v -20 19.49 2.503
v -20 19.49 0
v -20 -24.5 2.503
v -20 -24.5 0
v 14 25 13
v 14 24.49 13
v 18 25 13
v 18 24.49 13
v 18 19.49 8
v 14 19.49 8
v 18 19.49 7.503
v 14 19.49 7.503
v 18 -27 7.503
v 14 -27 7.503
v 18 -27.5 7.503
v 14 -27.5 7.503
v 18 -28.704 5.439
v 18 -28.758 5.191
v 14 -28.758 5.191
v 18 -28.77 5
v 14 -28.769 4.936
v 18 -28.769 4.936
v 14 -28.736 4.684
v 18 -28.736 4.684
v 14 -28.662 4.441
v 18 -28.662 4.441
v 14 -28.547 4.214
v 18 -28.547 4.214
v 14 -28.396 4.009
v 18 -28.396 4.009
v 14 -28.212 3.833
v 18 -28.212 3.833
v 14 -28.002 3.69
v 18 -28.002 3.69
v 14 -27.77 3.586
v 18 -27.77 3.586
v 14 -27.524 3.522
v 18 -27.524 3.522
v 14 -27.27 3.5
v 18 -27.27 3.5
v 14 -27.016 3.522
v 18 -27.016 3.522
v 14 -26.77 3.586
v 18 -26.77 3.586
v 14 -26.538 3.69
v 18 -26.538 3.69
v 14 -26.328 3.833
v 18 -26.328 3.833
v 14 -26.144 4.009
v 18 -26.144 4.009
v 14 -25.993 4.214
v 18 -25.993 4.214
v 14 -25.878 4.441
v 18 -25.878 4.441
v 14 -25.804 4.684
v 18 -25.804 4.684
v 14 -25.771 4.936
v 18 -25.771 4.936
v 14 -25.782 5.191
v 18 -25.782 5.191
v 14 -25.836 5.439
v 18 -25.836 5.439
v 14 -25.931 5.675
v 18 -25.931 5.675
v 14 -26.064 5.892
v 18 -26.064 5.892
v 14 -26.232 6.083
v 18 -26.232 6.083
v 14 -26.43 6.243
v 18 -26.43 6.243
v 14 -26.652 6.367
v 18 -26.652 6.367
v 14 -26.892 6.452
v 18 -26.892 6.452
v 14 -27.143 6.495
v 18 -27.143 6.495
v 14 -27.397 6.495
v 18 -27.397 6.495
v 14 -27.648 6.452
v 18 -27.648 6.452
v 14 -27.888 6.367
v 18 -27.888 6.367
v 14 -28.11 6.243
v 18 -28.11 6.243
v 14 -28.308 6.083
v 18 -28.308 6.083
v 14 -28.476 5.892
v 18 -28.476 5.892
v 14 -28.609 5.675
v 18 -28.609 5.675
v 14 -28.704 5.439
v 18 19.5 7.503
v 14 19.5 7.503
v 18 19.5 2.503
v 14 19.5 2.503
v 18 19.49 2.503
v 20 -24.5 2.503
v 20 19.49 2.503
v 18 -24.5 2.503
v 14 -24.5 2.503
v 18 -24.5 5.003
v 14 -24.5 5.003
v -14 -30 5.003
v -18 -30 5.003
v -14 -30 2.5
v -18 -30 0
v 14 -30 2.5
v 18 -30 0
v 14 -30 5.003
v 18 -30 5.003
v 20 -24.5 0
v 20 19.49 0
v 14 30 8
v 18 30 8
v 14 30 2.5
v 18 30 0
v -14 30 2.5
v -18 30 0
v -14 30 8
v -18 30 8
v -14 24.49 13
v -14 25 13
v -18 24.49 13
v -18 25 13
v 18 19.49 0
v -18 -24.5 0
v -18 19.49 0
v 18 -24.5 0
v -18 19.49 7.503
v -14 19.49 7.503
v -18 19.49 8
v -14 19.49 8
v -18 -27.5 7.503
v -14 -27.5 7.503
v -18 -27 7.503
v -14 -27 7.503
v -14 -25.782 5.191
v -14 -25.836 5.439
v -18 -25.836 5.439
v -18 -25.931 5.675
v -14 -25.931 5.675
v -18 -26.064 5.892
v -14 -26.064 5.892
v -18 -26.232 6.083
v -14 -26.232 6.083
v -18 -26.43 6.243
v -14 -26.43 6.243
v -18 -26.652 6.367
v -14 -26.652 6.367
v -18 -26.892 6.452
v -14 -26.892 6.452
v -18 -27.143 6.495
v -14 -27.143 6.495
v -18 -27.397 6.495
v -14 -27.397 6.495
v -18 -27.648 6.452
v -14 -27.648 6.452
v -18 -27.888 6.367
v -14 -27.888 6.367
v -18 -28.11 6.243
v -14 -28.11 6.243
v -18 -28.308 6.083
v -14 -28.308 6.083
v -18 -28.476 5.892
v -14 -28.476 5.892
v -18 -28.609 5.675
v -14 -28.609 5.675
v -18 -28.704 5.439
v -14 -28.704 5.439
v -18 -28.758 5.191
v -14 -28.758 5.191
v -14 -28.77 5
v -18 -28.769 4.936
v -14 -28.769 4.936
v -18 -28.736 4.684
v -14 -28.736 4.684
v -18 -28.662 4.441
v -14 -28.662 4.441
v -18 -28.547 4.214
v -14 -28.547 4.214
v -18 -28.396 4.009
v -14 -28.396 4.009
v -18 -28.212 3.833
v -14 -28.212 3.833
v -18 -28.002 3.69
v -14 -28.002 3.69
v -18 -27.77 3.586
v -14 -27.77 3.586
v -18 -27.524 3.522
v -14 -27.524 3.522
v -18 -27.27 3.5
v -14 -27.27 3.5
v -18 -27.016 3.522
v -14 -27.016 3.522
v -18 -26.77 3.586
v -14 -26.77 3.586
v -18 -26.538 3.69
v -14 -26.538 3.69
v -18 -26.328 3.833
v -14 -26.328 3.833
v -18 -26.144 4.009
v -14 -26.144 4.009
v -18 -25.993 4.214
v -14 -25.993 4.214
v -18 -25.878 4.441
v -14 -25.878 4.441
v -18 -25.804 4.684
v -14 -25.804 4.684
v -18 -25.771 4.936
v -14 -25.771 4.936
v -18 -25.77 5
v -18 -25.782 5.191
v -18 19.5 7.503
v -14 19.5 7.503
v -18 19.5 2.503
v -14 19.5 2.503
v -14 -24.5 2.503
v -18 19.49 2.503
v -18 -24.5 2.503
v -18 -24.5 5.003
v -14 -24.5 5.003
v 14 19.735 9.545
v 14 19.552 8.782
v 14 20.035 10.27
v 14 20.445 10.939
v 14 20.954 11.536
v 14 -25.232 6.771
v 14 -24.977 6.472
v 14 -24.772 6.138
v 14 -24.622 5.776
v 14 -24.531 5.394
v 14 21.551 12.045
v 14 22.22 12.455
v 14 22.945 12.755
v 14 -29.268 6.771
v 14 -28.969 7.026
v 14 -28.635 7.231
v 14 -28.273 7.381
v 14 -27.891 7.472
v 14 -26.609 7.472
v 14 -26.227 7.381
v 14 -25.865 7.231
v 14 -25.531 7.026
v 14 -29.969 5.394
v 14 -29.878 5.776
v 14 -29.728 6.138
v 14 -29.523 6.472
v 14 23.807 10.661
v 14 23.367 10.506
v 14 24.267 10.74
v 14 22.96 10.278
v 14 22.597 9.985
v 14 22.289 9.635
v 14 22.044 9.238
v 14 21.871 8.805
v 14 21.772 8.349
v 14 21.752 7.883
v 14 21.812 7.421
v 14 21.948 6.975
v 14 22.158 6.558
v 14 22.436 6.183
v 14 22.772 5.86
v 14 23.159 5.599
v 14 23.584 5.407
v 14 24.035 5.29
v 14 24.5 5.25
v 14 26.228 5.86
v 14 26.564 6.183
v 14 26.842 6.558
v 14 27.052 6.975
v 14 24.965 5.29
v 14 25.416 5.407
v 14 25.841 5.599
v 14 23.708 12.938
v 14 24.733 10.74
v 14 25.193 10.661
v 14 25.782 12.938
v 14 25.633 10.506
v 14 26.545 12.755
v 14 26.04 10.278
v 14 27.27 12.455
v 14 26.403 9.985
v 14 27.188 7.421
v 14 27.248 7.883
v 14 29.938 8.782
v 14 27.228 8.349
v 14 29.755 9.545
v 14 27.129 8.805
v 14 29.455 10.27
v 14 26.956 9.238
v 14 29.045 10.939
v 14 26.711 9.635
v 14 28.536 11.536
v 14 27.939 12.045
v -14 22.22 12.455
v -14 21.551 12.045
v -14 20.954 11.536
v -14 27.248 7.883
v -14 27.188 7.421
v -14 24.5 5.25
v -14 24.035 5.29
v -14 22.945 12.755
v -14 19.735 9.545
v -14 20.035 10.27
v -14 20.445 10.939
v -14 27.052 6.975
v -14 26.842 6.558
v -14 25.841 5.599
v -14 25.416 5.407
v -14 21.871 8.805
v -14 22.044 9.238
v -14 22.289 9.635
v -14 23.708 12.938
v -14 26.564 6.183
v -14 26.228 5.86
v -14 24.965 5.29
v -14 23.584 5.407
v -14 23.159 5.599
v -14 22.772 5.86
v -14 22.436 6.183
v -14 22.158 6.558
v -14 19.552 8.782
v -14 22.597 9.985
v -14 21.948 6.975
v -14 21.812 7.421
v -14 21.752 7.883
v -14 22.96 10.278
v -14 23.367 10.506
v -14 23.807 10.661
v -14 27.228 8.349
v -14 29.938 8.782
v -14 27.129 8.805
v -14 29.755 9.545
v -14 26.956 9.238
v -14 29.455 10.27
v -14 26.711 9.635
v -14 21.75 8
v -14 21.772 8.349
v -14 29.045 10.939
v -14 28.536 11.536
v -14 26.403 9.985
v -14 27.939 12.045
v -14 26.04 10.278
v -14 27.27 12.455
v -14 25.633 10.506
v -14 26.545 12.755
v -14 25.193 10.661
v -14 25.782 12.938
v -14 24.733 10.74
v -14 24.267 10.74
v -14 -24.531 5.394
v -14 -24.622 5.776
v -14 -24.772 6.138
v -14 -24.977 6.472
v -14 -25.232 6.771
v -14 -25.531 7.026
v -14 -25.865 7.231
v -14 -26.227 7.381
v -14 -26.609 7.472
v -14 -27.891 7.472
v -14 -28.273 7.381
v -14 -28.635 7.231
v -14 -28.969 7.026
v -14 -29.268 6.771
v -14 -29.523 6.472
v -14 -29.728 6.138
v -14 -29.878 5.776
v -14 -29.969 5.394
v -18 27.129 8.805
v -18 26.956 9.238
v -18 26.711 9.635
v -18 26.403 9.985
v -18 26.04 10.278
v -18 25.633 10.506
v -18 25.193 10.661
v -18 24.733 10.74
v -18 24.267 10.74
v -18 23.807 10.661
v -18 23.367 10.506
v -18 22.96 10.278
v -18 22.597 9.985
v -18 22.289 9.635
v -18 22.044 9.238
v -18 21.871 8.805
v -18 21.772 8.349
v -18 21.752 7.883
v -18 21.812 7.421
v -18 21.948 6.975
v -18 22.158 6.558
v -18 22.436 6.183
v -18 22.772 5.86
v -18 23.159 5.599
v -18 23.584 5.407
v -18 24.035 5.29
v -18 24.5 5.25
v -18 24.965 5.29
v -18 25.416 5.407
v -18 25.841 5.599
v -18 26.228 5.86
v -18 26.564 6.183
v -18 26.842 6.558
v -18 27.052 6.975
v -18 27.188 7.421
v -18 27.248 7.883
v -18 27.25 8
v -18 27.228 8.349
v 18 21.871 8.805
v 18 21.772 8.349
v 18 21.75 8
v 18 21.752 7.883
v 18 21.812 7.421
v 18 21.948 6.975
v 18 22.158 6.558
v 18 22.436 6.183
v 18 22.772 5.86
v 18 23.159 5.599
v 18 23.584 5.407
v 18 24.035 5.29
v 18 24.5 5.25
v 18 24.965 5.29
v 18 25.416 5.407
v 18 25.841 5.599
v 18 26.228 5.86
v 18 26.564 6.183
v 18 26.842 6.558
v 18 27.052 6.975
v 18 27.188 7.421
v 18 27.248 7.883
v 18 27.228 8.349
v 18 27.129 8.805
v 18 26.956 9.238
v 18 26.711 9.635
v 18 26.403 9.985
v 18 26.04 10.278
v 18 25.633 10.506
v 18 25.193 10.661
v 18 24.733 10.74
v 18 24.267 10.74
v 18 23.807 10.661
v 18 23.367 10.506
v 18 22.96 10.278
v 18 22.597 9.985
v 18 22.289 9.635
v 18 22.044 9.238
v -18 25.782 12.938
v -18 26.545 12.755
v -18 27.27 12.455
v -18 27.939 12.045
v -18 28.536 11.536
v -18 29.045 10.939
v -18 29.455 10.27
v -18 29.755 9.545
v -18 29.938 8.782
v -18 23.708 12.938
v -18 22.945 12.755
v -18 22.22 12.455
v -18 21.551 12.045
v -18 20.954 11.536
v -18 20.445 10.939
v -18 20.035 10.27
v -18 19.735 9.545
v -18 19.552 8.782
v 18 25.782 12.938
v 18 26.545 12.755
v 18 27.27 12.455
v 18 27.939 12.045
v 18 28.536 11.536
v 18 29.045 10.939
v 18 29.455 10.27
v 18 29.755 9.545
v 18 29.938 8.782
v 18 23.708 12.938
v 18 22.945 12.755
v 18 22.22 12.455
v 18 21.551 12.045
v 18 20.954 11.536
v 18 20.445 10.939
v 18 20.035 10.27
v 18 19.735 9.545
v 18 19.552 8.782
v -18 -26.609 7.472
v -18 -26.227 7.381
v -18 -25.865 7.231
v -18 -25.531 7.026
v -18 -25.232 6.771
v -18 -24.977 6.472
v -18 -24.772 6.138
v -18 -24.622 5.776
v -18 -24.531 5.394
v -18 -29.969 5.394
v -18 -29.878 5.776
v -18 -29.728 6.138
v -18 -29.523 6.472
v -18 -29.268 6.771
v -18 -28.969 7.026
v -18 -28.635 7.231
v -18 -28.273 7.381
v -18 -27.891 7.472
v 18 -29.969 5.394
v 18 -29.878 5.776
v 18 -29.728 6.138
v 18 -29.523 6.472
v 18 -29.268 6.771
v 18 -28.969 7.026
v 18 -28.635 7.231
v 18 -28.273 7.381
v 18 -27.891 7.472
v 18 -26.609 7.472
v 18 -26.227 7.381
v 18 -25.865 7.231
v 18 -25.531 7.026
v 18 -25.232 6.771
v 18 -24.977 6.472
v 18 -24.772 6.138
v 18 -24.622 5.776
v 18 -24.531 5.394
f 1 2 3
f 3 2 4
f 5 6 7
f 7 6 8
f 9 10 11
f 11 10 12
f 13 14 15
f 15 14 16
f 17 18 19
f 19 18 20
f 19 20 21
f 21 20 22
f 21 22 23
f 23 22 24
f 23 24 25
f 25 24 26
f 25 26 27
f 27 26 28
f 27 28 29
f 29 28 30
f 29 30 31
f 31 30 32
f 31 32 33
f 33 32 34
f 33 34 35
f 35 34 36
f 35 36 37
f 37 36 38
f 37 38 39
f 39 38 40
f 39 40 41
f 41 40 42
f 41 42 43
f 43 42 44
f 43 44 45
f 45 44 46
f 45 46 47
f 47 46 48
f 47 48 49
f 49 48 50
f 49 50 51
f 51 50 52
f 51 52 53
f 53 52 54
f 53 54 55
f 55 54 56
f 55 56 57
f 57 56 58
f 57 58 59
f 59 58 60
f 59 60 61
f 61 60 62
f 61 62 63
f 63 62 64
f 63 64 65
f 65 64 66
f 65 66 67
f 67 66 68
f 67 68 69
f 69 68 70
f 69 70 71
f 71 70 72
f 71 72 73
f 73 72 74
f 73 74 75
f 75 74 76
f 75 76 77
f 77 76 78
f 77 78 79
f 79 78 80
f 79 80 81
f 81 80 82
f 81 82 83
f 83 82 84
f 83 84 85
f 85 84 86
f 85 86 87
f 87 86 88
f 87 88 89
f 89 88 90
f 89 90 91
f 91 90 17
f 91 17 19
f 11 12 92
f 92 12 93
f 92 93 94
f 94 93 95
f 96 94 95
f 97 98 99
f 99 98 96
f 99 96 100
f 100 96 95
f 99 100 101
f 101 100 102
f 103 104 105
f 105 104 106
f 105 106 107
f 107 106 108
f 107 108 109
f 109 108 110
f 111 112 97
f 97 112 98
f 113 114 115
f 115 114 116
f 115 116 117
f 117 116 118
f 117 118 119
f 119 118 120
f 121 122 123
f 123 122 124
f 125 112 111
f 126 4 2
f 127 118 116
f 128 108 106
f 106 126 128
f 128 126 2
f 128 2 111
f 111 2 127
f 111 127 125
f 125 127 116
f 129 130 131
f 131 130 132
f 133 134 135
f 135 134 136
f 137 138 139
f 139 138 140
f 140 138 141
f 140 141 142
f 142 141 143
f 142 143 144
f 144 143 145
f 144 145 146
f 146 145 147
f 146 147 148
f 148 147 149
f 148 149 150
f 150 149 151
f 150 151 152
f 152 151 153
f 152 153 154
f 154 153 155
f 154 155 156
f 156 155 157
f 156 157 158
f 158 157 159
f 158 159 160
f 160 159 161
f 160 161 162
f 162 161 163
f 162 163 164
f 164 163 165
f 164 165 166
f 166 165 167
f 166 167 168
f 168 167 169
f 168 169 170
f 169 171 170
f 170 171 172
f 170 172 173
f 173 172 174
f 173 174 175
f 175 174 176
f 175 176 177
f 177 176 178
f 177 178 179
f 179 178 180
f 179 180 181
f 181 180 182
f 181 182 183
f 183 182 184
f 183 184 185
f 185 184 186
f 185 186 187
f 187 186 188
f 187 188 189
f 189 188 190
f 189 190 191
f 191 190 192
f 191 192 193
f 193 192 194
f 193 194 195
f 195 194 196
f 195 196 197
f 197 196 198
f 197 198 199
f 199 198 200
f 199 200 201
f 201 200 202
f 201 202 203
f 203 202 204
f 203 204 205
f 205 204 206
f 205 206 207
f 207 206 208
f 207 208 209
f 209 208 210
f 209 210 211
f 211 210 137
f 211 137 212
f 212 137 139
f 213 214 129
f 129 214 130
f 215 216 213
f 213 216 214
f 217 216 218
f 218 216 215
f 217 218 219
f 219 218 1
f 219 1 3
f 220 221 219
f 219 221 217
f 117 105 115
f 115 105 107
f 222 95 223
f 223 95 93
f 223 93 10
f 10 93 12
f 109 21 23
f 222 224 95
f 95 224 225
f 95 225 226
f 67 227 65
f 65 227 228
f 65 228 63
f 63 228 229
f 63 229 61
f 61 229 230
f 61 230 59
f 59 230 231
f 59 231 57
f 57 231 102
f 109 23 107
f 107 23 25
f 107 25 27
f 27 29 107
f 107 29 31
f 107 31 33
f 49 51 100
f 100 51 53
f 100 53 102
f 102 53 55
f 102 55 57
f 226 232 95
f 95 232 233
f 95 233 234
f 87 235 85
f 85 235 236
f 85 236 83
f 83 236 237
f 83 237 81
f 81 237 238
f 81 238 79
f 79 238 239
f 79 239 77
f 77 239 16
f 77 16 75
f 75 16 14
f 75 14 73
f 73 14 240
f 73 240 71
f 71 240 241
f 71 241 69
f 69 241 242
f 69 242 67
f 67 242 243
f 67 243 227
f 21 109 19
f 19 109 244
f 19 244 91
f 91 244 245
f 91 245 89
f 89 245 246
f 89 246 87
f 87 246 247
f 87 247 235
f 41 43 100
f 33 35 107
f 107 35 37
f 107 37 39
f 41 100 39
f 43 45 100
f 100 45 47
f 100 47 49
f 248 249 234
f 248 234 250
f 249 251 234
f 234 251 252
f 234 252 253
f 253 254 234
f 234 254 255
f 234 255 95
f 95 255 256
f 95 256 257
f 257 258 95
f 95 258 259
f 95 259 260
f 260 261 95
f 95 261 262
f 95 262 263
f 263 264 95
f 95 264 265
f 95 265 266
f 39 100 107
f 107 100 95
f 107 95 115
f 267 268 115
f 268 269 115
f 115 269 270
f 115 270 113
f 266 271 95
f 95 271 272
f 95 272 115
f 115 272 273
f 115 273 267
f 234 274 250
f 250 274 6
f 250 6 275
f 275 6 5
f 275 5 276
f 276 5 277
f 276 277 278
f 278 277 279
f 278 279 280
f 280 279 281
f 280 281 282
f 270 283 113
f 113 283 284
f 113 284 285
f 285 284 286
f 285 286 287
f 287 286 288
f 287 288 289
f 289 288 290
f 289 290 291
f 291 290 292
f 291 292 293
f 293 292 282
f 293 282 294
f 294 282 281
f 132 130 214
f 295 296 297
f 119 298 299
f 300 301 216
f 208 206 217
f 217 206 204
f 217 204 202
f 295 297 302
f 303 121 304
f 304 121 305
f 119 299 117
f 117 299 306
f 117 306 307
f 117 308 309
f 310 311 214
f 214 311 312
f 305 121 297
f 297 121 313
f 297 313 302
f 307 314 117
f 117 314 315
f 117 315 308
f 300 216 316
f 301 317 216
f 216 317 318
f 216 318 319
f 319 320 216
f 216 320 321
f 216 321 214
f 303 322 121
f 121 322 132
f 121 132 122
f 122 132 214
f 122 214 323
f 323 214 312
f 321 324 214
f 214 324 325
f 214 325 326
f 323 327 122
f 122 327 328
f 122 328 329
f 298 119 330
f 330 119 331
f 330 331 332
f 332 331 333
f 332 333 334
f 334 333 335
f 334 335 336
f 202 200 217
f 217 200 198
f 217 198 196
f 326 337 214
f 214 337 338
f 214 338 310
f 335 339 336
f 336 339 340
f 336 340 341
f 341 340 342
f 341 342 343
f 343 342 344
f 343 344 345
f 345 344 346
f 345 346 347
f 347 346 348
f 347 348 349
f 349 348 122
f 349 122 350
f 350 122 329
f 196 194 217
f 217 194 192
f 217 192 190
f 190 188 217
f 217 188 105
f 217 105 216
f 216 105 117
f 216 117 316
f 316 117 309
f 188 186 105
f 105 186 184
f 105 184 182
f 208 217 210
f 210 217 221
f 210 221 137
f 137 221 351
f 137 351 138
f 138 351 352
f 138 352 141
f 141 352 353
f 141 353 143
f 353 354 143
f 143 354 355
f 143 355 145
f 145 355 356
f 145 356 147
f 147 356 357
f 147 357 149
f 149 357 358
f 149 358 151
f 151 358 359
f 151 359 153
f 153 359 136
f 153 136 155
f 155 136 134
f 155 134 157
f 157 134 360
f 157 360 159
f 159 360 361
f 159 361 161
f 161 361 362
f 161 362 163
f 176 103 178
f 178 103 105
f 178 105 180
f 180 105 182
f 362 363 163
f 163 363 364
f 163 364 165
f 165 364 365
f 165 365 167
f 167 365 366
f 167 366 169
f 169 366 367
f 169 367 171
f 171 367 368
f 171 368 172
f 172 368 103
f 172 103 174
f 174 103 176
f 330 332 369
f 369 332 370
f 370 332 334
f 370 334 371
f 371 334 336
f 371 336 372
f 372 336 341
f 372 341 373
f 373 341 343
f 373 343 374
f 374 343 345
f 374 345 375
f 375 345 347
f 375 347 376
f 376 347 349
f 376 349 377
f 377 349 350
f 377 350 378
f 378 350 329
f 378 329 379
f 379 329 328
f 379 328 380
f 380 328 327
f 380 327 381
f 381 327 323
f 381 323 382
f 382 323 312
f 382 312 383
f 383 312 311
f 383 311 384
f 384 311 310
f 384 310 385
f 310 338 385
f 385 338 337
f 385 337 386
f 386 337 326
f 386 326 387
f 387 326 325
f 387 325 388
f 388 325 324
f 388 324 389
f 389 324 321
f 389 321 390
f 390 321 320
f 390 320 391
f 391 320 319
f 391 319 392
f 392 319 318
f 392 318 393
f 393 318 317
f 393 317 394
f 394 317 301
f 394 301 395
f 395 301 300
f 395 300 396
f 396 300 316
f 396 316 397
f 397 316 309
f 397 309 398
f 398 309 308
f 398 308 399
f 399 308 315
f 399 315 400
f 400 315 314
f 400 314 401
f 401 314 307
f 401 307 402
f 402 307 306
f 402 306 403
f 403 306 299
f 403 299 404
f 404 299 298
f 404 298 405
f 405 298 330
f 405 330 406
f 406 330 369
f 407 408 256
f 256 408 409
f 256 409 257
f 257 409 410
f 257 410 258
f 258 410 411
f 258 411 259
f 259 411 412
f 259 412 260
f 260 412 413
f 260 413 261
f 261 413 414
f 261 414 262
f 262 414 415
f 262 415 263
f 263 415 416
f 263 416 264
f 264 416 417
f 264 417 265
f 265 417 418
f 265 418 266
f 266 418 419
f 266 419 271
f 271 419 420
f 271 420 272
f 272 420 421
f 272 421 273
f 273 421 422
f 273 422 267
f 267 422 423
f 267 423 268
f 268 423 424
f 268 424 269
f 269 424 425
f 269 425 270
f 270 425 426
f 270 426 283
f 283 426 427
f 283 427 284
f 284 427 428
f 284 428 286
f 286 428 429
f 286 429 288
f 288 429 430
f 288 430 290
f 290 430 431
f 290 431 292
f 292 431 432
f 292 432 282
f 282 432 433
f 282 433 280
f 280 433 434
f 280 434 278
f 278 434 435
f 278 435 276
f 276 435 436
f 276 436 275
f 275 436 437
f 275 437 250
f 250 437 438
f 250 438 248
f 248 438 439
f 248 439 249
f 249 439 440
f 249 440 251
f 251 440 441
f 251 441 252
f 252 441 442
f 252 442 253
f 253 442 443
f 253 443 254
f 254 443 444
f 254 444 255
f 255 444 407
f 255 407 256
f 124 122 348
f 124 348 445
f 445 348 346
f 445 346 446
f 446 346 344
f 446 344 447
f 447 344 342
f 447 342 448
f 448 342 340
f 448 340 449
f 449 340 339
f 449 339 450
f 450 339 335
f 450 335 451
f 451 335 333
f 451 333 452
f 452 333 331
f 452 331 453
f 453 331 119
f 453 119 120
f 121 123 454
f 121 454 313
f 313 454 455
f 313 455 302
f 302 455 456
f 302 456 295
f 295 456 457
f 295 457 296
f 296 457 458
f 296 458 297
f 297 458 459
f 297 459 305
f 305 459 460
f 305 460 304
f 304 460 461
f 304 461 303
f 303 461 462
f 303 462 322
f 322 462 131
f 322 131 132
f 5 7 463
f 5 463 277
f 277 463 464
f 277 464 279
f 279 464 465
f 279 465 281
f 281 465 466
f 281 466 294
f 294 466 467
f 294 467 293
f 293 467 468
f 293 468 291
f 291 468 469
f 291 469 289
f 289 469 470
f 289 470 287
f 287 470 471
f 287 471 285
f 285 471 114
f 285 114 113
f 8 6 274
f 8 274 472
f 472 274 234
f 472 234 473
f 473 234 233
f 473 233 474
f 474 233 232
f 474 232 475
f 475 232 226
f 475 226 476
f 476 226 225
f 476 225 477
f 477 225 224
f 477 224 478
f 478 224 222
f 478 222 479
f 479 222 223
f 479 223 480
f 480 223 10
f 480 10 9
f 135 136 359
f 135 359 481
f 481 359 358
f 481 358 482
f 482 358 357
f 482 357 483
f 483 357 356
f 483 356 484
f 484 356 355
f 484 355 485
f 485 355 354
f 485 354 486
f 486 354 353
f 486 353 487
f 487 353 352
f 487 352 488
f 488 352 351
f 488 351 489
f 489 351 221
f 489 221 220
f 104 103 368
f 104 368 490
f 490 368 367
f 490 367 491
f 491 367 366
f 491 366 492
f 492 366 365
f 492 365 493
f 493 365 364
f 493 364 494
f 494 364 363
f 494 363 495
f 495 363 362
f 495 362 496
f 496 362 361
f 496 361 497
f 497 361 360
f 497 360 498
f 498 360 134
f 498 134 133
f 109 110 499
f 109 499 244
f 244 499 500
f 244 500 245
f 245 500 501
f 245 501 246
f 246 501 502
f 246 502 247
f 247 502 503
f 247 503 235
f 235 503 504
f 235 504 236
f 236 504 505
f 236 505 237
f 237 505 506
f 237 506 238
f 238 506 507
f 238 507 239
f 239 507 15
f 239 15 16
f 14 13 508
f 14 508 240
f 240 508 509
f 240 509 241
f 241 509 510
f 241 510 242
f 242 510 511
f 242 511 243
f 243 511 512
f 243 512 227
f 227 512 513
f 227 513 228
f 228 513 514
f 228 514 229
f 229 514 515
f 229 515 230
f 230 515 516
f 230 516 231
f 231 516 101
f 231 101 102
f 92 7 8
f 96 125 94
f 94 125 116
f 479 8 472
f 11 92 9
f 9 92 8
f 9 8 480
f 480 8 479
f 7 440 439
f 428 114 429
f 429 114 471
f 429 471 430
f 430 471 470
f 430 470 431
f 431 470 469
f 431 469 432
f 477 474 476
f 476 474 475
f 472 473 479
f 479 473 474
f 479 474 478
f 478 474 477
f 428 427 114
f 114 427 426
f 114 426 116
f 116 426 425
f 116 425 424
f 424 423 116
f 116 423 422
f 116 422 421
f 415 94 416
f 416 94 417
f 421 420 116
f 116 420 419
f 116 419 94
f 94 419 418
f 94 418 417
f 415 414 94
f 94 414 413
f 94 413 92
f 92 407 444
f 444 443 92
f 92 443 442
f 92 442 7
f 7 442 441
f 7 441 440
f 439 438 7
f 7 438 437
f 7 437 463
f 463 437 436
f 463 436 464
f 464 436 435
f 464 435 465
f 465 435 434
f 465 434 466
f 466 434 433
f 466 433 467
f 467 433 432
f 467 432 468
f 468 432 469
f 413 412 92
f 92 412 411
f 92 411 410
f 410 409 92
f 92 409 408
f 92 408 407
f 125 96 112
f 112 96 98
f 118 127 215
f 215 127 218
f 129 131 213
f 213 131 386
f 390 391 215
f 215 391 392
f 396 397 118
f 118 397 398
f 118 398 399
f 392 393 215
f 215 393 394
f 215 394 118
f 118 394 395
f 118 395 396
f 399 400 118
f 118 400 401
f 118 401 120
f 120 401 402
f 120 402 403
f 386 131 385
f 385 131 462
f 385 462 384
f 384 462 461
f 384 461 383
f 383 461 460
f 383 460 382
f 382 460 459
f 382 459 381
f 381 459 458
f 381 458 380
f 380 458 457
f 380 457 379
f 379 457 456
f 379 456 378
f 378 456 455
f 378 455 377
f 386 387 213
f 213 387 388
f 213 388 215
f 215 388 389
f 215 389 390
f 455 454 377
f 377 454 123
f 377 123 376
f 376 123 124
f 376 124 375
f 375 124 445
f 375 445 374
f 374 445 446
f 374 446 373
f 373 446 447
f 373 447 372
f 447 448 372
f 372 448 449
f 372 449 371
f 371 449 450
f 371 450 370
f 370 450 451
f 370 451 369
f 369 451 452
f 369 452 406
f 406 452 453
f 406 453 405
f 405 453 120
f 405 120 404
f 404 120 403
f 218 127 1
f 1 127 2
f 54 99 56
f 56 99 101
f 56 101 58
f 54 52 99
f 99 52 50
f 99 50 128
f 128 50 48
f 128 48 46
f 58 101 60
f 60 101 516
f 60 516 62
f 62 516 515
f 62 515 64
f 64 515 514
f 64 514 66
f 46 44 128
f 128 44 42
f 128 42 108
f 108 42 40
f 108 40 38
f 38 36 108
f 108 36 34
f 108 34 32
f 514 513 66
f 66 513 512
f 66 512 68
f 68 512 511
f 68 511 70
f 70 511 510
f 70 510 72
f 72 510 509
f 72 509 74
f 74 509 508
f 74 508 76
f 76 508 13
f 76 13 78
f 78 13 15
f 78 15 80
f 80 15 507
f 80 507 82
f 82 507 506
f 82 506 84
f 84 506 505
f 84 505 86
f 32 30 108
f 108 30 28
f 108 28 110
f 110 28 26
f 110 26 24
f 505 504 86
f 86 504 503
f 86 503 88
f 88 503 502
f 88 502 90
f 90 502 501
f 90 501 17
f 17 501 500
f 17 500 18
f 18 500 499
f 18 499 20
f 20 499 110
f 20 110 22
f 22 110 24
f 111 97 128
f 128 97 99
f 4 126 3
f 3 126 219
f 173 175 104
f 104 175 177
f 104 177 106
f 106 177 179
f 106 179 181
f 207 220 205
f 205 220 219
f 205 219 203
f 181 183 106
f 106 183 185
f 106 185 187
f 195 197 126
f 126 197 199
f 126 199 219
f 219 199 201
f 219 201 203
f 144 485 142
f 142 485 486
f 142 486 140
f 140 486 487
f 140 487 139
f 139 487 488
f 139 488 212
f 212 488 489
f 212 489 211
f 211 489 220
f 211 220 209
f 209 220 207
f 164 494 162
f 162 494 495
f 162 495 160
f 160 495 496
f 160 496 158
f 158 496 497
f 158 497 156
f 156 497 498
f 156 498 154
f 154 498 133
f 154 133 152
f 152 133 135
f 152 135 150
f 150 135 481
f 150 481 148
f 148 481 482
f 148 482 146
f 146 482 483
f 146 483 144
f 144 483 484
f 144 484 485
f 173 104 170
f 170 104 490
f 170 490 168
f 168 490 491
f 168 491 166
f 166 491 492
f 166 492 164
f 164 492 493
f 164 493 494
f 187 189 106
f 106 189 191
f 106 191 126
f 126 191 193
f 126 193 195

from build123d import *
from OCP.BRepFilletAPI import BRepFilletAPI_MakeFillet

# Parameters (mm, degrees)
CROQUIS1_W              = 40
CROQUIS1_H              = 60
SALIENTE_EXTRUIR1_DEPTH = 13
CROQUIS19_W             = 5.497004625
CROQUIS19_H             = 49.49
CORTAR_EXTRUIR6_DEPTH   = 40
CROQUIS17_R             = 1.5
CORTAR_EXTRUIR8_DEPTH   = 40
CROQUIS20_W             = 5
CROQUIS20_H             = 44
CORTAR_EXTRUIR11_DEPTH  = 40
CROQUIS23_W             = 28
CROQUIS23_H             = 10.7
CORTAR_EXTRUIR12_DEPTH  = 60.5
CROQUIS24_R             = 2.75
CORTAR_EXTRUIR13_DEPTH  = 40
REDONDEO2_R1            = 2.5
REDONDEO2_R2            = 5
CROQUIS25_W             = 2
CROQUIS25_H             = 13
CORTAR_EXTRUIR15_DEPTH  = 10.51
MATRIZC1_COUNT          = 2
CROQUIS27_W             = 2
CROQUIS27_H             = 7.52
CORTAR_EXTRUIR16_DEPTH  = 5.5
CROQUIS28_W             = 2
CROQUIS28_H             = 7.52
CORTAR_EXTRUIR17_DEPTH  = 5.5
CROQUIS29_W             = 2
CROQUIS29_H             = 9.681242813
CORTAR_EXTRUIR18_DEPTH  = 3


with BuildPart() as part:
    # Croquis1 → Saliente-Extruir1 (new body)
    with BuildSketch(Plane.XY):
        Rectangle(CROQUIS1_W, CROQUIS1_H)
    extrude(amount=SALIENTE_EXTRUIR1_DEPTH)

    # Croquis19 → Cortar-Extruir6 (cut)
    with BuildSketch(Plane(origin=(20, 0, 0), x_dir=(0, 0, -1), z_dir=(1, 0, 0))):
        with Locations((-10.251497688, -5.255)):
            Rectangle(CROQUIS19_W, CROQUIS19_H)
    extrude(amount=-CORTAR_EXTRUIR6_DEPTH, mode=Mode.SUBTRACT)

    # Croquis17 → Cortar-Extruir8 (cut)
    with BuildSketch(Plane(origin=(20, 0, 0), x_dir=(0, 0, -1), z_dir=(1, 0, 0))):
        with Locations((-5, -27.27)):
            Circle(CROQUIS17_R)
    extrude(amount=-CORTAR_EXTRUIR8_DEPTH, mode=Mode.SUBTRACT)

    # Croquis20 → Cortar-Extruir11 (cut)
    with BuildSketch(Plane(origin=(20, 0, 0), x_dir=(0, 0, -1), z_dir=(1, 0, 0))):
        with Locations((-5.002995375, -2.5)):
            Rectangle(CROQUIS20_W, CROQUIS20_H)
    extrude(amount=-CORTAR_EXTRUIR11_DEPTH, mode=Mode.SUBTRACT)

    # Croquis23 → Cortar-Extruir12 (cut)
    with BuildSketch(Plane(origin=(0, 30, 0), x_dir=(1, 0, 0), z_dir=(0, 1, 0))):
        with Locations((0, -7.85)):
            Rectangle(CROQUIS23_W, CROQUIS23_H)
    extrude(amount=-CORTAR_EXTRUIR12_DEPTH, mode=Mode.SUBTRACT)

    # Croquis24 → Cortar-Extruir13 (cut)
    with BuildSketch(Plane(origin=(20, 0, 0), x_dir=(0, 0, -1), z_dir=(1, 0, 0))):
        with Locations((-8, 24.5)):
            Circle(CROQUIS24_R)
    extrude(amount=-CORTAR_EXTRUIR13_DEPTH, mode=Mode.SUBTRACT)

    # Redondeo2: one fillet with a radius per group of edges: ONE call of the kernel's fillet builder (fillet() takes one radius for all edges)
    redondeo2_edges_1 = [part.edges().sort_by_distance(p)[0] for p in [
        (17, -24.5, 7.502995375),
        (17, -30, 7.502995375),
        (-17, -30, 7.502995375),
        (-17, -24.5, 7.502995375),
    ]]
    redondeo2_edges_2 = [part.edges().sort_by_distance(p)[0] for p in [
        (17, 19.49, 13),
        (17, 30, 13),
        (-17, 19.49, 13),
        (-17, 30, 13),
    ]]
    redondeo2 = BRepFilletAPI_MakeFillet(part.part.solid().wrapped)
    for e in redondeo2_edges_1:
        redondeo2.Add(REDONDEO2_R1, e.wrapped)
    for e in redondeo2_edges_2:
        redondeo2.Add(REDONDEO2_R2, e.wrapped)
    add(Compound.cast(redondeo2.Shape()), mode=Mode.REPLACE)

    # Croquis25 → Cortar-Extruir15 (cut)
    with BuildSketch(Plane(origin=(0, 30, 0), x_dir=(1, 0, 0), z_dir=(0, 1, 0))):
        with Locations((19, -6.5)):
            Rectangle(CROQUIS25_W, CROQUIS25_H)
    cortar_extruir15 = extrude(amount=-CORTAR_EXTRUIR15_DEPTH, mode=Mode.SUBTRACT)

    # MatrizC1: Cortar-Extruir15 ×2 about axis
    matrizc1_axis = Axis((0, 26.946865888, 5), (0, -1, 0))
    for i in range(1, MATRIZC1_COUNT):
        add(cortar_extruir15.rotate(matrizc1_axis, i * 360 / MATRIZC1_COUNT), mode=Mode.SUBTRACT)

    # Croquis27 → Cortar-Extruir16 (cut)
    with BuildSketch(Plane.XZ.offset(30)):
        with Locations((19, 3.76)):
            Rectangle(CROQUIS27_W, CROQUIS27_H)
    extrude(amount=-CORTAR_EXTRUIR16_DEPTH, mode=Mode.SUBTRACT)

    # Croquis28 → Cortar-Extruir17 (cut)
    with BuildSketch(Plane.XZ.offset(30)):
        with Locations((-19, 3.76)):
            Rectangle(CROQUIS28_W, CROQUIS28_H)
    extrude(amount=-CORTAR_EXTRUIR17_DEPTH, mode=Mode.SUBTRACT)

    # Croquis29 → Cortar-Extruir18 (cut)
    with BuildSketch(Plane(origin=(0, 0, 10), x_dir=(-1, 0, 0), z_dir=(0, 0, -1))):
        with Locations((19, 24.748045712)):
            Rectangle(CROQUIS29_W, CROQUIS29_H)
    extrude(amount=-CORTAR_EXTRUIR18_DEPTH, mode=Mode.SUBTRACT)


solid = part.part
